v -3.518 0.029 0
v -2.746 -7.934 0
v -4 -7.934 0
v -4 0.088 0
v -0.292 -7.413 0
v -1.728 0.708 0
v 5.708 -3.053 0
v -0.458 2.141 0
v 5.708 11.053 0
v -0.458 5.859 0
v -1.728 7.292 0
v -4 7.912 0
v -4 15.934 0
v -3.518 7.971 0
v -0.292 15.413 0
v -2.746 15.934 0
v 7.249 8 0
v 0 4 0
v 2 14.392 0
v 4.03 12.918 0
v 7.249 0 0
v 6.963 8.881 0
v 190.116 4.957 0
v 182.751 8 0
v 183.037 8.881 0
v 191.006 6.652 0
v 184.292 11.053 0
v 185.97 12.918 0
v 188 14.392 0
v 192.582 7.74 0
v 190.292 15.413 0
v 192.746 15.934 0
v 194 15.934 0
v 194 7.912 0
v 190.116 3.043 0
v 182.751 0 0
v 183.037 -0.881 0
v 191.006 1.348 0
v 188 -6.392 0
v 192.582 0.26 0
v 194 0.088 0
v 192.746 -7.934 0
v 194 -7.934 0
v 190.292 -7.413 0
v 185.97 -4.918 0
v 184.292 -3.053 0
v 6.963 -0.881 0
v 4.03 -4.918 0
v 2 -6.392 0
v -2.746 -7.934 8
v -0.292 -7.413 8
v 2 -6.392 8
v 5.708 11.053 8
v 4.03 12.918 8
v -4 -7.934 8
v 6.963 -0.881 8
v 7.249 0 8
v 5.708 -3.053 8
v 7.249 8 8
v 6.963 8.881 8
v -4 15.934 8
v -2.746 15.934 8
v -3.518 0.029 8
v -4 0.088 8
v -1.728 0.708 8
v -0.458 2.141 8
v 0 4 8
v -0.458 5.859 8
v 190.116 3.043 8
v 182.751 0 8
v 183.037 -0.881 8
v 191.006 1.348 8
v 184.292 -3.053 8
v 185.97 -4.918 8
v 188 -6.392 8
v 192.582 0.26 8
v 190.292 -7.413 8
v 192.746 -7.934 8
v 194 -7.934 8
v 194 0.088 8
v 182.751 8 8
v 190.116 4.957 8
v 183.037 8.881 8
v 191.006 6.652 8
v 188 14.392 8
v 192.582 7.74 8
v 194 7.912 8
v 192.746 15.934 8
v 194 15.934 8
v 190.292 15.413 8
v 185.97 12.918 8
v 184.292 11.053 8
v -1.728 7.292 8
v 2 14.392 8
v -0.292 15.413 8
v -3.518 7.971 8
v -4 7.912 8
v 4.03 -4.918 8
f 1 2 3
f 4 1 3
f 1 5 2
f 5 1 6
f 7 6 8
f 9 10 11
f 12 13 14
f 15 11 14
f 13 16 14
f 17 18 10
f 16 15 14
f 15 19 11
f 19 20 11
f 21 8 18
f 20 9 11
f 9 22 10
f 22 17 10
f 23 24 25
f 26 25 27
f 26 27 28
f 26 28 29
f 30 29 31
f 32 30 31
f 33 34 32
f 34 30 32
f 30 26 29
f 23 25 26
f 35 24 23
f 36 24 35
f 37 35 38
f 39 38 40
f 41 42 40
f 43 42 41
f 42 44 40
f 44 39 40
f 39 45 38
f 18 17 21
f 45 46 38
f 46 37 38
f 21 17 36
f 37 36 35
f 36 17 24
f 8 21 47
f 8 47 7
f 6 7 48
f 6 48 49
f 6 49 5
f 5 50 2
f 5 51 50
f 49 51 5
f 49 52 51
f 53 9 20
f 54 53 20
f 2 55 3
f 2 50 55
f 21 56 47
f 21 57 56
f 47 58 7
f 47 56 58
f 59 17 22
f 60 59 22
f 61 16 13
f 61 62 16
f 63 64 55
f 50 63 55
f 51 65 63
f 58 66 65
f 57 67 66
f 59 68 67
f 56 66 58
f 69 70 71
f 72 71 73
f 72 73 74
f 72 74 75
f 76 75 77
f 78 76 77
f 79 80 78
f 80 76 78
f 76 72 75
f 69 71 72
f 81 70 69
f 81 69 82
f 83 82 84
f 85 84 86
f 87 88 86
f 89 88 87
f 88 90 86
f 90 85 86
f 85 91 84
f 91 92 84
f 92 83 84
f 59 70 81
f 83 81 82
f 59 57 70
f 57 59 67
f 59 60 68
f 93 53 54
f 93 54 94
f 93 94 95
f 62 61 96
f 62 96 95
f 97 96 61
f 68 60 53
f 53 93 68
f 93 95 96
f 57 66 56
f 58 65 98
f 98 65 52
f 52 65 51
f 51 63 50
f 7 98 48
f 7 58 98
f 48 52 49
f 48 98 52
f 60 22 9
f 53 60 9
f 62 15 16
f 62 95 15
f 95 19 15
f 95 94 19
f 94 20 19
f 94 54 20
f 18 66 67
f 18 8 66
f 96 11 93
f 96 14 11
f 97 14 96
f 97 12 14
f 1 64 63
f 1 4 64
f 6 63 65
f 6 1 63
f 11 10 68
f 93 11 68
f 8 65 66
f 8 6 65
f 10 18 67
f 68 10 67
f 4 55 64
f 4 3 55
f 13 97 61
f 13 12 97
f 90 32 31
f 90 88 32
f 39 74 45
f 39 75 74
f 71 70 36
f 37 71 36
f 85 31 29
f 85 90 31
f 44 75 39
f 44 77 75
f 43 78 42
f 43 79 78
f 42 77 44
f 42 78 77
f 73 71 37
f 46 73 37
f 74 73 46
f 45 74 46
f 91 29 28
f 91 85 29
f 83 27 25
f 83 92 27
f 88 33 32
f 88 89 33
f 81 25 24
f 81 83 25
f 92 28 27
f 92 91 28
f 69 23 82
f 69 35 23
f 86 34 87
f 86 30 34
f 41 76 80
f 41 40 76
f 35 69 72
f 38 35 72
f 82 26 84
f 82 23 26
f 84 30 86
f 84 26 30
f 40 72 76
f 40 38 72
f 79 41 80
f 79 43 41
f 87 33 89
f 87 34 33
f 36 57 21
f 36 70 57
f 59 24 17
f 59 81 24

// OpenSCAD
distance = 190;
thickness = 8;
diameter = 8;

outter_diameter = diameter + 2 * thickness;

cube([distance, thickness, thickness]);

translate([-diameter/2, thickness/2, 0]) {
    difference() {
        cylinder(thickness, r=outter_diameter/2);
        cylinder(thickness, r=diameter/2);
        translate([-outter_diameter, -outter_diameter/2, 0]) cube(outter_diameter, outter_diameter, thickness);
    }
}

translate([distance + diameter/2, thickness/2, 0]) {
    difference() {
        cylinder(thickness, r=outter_diameter/2);
        cylinder(thickness, r=diameter/2);
        translate([0, -outter_diameter/2, 0]) cube(outter_diameter, outter_diameter, thickness);
    }
}
